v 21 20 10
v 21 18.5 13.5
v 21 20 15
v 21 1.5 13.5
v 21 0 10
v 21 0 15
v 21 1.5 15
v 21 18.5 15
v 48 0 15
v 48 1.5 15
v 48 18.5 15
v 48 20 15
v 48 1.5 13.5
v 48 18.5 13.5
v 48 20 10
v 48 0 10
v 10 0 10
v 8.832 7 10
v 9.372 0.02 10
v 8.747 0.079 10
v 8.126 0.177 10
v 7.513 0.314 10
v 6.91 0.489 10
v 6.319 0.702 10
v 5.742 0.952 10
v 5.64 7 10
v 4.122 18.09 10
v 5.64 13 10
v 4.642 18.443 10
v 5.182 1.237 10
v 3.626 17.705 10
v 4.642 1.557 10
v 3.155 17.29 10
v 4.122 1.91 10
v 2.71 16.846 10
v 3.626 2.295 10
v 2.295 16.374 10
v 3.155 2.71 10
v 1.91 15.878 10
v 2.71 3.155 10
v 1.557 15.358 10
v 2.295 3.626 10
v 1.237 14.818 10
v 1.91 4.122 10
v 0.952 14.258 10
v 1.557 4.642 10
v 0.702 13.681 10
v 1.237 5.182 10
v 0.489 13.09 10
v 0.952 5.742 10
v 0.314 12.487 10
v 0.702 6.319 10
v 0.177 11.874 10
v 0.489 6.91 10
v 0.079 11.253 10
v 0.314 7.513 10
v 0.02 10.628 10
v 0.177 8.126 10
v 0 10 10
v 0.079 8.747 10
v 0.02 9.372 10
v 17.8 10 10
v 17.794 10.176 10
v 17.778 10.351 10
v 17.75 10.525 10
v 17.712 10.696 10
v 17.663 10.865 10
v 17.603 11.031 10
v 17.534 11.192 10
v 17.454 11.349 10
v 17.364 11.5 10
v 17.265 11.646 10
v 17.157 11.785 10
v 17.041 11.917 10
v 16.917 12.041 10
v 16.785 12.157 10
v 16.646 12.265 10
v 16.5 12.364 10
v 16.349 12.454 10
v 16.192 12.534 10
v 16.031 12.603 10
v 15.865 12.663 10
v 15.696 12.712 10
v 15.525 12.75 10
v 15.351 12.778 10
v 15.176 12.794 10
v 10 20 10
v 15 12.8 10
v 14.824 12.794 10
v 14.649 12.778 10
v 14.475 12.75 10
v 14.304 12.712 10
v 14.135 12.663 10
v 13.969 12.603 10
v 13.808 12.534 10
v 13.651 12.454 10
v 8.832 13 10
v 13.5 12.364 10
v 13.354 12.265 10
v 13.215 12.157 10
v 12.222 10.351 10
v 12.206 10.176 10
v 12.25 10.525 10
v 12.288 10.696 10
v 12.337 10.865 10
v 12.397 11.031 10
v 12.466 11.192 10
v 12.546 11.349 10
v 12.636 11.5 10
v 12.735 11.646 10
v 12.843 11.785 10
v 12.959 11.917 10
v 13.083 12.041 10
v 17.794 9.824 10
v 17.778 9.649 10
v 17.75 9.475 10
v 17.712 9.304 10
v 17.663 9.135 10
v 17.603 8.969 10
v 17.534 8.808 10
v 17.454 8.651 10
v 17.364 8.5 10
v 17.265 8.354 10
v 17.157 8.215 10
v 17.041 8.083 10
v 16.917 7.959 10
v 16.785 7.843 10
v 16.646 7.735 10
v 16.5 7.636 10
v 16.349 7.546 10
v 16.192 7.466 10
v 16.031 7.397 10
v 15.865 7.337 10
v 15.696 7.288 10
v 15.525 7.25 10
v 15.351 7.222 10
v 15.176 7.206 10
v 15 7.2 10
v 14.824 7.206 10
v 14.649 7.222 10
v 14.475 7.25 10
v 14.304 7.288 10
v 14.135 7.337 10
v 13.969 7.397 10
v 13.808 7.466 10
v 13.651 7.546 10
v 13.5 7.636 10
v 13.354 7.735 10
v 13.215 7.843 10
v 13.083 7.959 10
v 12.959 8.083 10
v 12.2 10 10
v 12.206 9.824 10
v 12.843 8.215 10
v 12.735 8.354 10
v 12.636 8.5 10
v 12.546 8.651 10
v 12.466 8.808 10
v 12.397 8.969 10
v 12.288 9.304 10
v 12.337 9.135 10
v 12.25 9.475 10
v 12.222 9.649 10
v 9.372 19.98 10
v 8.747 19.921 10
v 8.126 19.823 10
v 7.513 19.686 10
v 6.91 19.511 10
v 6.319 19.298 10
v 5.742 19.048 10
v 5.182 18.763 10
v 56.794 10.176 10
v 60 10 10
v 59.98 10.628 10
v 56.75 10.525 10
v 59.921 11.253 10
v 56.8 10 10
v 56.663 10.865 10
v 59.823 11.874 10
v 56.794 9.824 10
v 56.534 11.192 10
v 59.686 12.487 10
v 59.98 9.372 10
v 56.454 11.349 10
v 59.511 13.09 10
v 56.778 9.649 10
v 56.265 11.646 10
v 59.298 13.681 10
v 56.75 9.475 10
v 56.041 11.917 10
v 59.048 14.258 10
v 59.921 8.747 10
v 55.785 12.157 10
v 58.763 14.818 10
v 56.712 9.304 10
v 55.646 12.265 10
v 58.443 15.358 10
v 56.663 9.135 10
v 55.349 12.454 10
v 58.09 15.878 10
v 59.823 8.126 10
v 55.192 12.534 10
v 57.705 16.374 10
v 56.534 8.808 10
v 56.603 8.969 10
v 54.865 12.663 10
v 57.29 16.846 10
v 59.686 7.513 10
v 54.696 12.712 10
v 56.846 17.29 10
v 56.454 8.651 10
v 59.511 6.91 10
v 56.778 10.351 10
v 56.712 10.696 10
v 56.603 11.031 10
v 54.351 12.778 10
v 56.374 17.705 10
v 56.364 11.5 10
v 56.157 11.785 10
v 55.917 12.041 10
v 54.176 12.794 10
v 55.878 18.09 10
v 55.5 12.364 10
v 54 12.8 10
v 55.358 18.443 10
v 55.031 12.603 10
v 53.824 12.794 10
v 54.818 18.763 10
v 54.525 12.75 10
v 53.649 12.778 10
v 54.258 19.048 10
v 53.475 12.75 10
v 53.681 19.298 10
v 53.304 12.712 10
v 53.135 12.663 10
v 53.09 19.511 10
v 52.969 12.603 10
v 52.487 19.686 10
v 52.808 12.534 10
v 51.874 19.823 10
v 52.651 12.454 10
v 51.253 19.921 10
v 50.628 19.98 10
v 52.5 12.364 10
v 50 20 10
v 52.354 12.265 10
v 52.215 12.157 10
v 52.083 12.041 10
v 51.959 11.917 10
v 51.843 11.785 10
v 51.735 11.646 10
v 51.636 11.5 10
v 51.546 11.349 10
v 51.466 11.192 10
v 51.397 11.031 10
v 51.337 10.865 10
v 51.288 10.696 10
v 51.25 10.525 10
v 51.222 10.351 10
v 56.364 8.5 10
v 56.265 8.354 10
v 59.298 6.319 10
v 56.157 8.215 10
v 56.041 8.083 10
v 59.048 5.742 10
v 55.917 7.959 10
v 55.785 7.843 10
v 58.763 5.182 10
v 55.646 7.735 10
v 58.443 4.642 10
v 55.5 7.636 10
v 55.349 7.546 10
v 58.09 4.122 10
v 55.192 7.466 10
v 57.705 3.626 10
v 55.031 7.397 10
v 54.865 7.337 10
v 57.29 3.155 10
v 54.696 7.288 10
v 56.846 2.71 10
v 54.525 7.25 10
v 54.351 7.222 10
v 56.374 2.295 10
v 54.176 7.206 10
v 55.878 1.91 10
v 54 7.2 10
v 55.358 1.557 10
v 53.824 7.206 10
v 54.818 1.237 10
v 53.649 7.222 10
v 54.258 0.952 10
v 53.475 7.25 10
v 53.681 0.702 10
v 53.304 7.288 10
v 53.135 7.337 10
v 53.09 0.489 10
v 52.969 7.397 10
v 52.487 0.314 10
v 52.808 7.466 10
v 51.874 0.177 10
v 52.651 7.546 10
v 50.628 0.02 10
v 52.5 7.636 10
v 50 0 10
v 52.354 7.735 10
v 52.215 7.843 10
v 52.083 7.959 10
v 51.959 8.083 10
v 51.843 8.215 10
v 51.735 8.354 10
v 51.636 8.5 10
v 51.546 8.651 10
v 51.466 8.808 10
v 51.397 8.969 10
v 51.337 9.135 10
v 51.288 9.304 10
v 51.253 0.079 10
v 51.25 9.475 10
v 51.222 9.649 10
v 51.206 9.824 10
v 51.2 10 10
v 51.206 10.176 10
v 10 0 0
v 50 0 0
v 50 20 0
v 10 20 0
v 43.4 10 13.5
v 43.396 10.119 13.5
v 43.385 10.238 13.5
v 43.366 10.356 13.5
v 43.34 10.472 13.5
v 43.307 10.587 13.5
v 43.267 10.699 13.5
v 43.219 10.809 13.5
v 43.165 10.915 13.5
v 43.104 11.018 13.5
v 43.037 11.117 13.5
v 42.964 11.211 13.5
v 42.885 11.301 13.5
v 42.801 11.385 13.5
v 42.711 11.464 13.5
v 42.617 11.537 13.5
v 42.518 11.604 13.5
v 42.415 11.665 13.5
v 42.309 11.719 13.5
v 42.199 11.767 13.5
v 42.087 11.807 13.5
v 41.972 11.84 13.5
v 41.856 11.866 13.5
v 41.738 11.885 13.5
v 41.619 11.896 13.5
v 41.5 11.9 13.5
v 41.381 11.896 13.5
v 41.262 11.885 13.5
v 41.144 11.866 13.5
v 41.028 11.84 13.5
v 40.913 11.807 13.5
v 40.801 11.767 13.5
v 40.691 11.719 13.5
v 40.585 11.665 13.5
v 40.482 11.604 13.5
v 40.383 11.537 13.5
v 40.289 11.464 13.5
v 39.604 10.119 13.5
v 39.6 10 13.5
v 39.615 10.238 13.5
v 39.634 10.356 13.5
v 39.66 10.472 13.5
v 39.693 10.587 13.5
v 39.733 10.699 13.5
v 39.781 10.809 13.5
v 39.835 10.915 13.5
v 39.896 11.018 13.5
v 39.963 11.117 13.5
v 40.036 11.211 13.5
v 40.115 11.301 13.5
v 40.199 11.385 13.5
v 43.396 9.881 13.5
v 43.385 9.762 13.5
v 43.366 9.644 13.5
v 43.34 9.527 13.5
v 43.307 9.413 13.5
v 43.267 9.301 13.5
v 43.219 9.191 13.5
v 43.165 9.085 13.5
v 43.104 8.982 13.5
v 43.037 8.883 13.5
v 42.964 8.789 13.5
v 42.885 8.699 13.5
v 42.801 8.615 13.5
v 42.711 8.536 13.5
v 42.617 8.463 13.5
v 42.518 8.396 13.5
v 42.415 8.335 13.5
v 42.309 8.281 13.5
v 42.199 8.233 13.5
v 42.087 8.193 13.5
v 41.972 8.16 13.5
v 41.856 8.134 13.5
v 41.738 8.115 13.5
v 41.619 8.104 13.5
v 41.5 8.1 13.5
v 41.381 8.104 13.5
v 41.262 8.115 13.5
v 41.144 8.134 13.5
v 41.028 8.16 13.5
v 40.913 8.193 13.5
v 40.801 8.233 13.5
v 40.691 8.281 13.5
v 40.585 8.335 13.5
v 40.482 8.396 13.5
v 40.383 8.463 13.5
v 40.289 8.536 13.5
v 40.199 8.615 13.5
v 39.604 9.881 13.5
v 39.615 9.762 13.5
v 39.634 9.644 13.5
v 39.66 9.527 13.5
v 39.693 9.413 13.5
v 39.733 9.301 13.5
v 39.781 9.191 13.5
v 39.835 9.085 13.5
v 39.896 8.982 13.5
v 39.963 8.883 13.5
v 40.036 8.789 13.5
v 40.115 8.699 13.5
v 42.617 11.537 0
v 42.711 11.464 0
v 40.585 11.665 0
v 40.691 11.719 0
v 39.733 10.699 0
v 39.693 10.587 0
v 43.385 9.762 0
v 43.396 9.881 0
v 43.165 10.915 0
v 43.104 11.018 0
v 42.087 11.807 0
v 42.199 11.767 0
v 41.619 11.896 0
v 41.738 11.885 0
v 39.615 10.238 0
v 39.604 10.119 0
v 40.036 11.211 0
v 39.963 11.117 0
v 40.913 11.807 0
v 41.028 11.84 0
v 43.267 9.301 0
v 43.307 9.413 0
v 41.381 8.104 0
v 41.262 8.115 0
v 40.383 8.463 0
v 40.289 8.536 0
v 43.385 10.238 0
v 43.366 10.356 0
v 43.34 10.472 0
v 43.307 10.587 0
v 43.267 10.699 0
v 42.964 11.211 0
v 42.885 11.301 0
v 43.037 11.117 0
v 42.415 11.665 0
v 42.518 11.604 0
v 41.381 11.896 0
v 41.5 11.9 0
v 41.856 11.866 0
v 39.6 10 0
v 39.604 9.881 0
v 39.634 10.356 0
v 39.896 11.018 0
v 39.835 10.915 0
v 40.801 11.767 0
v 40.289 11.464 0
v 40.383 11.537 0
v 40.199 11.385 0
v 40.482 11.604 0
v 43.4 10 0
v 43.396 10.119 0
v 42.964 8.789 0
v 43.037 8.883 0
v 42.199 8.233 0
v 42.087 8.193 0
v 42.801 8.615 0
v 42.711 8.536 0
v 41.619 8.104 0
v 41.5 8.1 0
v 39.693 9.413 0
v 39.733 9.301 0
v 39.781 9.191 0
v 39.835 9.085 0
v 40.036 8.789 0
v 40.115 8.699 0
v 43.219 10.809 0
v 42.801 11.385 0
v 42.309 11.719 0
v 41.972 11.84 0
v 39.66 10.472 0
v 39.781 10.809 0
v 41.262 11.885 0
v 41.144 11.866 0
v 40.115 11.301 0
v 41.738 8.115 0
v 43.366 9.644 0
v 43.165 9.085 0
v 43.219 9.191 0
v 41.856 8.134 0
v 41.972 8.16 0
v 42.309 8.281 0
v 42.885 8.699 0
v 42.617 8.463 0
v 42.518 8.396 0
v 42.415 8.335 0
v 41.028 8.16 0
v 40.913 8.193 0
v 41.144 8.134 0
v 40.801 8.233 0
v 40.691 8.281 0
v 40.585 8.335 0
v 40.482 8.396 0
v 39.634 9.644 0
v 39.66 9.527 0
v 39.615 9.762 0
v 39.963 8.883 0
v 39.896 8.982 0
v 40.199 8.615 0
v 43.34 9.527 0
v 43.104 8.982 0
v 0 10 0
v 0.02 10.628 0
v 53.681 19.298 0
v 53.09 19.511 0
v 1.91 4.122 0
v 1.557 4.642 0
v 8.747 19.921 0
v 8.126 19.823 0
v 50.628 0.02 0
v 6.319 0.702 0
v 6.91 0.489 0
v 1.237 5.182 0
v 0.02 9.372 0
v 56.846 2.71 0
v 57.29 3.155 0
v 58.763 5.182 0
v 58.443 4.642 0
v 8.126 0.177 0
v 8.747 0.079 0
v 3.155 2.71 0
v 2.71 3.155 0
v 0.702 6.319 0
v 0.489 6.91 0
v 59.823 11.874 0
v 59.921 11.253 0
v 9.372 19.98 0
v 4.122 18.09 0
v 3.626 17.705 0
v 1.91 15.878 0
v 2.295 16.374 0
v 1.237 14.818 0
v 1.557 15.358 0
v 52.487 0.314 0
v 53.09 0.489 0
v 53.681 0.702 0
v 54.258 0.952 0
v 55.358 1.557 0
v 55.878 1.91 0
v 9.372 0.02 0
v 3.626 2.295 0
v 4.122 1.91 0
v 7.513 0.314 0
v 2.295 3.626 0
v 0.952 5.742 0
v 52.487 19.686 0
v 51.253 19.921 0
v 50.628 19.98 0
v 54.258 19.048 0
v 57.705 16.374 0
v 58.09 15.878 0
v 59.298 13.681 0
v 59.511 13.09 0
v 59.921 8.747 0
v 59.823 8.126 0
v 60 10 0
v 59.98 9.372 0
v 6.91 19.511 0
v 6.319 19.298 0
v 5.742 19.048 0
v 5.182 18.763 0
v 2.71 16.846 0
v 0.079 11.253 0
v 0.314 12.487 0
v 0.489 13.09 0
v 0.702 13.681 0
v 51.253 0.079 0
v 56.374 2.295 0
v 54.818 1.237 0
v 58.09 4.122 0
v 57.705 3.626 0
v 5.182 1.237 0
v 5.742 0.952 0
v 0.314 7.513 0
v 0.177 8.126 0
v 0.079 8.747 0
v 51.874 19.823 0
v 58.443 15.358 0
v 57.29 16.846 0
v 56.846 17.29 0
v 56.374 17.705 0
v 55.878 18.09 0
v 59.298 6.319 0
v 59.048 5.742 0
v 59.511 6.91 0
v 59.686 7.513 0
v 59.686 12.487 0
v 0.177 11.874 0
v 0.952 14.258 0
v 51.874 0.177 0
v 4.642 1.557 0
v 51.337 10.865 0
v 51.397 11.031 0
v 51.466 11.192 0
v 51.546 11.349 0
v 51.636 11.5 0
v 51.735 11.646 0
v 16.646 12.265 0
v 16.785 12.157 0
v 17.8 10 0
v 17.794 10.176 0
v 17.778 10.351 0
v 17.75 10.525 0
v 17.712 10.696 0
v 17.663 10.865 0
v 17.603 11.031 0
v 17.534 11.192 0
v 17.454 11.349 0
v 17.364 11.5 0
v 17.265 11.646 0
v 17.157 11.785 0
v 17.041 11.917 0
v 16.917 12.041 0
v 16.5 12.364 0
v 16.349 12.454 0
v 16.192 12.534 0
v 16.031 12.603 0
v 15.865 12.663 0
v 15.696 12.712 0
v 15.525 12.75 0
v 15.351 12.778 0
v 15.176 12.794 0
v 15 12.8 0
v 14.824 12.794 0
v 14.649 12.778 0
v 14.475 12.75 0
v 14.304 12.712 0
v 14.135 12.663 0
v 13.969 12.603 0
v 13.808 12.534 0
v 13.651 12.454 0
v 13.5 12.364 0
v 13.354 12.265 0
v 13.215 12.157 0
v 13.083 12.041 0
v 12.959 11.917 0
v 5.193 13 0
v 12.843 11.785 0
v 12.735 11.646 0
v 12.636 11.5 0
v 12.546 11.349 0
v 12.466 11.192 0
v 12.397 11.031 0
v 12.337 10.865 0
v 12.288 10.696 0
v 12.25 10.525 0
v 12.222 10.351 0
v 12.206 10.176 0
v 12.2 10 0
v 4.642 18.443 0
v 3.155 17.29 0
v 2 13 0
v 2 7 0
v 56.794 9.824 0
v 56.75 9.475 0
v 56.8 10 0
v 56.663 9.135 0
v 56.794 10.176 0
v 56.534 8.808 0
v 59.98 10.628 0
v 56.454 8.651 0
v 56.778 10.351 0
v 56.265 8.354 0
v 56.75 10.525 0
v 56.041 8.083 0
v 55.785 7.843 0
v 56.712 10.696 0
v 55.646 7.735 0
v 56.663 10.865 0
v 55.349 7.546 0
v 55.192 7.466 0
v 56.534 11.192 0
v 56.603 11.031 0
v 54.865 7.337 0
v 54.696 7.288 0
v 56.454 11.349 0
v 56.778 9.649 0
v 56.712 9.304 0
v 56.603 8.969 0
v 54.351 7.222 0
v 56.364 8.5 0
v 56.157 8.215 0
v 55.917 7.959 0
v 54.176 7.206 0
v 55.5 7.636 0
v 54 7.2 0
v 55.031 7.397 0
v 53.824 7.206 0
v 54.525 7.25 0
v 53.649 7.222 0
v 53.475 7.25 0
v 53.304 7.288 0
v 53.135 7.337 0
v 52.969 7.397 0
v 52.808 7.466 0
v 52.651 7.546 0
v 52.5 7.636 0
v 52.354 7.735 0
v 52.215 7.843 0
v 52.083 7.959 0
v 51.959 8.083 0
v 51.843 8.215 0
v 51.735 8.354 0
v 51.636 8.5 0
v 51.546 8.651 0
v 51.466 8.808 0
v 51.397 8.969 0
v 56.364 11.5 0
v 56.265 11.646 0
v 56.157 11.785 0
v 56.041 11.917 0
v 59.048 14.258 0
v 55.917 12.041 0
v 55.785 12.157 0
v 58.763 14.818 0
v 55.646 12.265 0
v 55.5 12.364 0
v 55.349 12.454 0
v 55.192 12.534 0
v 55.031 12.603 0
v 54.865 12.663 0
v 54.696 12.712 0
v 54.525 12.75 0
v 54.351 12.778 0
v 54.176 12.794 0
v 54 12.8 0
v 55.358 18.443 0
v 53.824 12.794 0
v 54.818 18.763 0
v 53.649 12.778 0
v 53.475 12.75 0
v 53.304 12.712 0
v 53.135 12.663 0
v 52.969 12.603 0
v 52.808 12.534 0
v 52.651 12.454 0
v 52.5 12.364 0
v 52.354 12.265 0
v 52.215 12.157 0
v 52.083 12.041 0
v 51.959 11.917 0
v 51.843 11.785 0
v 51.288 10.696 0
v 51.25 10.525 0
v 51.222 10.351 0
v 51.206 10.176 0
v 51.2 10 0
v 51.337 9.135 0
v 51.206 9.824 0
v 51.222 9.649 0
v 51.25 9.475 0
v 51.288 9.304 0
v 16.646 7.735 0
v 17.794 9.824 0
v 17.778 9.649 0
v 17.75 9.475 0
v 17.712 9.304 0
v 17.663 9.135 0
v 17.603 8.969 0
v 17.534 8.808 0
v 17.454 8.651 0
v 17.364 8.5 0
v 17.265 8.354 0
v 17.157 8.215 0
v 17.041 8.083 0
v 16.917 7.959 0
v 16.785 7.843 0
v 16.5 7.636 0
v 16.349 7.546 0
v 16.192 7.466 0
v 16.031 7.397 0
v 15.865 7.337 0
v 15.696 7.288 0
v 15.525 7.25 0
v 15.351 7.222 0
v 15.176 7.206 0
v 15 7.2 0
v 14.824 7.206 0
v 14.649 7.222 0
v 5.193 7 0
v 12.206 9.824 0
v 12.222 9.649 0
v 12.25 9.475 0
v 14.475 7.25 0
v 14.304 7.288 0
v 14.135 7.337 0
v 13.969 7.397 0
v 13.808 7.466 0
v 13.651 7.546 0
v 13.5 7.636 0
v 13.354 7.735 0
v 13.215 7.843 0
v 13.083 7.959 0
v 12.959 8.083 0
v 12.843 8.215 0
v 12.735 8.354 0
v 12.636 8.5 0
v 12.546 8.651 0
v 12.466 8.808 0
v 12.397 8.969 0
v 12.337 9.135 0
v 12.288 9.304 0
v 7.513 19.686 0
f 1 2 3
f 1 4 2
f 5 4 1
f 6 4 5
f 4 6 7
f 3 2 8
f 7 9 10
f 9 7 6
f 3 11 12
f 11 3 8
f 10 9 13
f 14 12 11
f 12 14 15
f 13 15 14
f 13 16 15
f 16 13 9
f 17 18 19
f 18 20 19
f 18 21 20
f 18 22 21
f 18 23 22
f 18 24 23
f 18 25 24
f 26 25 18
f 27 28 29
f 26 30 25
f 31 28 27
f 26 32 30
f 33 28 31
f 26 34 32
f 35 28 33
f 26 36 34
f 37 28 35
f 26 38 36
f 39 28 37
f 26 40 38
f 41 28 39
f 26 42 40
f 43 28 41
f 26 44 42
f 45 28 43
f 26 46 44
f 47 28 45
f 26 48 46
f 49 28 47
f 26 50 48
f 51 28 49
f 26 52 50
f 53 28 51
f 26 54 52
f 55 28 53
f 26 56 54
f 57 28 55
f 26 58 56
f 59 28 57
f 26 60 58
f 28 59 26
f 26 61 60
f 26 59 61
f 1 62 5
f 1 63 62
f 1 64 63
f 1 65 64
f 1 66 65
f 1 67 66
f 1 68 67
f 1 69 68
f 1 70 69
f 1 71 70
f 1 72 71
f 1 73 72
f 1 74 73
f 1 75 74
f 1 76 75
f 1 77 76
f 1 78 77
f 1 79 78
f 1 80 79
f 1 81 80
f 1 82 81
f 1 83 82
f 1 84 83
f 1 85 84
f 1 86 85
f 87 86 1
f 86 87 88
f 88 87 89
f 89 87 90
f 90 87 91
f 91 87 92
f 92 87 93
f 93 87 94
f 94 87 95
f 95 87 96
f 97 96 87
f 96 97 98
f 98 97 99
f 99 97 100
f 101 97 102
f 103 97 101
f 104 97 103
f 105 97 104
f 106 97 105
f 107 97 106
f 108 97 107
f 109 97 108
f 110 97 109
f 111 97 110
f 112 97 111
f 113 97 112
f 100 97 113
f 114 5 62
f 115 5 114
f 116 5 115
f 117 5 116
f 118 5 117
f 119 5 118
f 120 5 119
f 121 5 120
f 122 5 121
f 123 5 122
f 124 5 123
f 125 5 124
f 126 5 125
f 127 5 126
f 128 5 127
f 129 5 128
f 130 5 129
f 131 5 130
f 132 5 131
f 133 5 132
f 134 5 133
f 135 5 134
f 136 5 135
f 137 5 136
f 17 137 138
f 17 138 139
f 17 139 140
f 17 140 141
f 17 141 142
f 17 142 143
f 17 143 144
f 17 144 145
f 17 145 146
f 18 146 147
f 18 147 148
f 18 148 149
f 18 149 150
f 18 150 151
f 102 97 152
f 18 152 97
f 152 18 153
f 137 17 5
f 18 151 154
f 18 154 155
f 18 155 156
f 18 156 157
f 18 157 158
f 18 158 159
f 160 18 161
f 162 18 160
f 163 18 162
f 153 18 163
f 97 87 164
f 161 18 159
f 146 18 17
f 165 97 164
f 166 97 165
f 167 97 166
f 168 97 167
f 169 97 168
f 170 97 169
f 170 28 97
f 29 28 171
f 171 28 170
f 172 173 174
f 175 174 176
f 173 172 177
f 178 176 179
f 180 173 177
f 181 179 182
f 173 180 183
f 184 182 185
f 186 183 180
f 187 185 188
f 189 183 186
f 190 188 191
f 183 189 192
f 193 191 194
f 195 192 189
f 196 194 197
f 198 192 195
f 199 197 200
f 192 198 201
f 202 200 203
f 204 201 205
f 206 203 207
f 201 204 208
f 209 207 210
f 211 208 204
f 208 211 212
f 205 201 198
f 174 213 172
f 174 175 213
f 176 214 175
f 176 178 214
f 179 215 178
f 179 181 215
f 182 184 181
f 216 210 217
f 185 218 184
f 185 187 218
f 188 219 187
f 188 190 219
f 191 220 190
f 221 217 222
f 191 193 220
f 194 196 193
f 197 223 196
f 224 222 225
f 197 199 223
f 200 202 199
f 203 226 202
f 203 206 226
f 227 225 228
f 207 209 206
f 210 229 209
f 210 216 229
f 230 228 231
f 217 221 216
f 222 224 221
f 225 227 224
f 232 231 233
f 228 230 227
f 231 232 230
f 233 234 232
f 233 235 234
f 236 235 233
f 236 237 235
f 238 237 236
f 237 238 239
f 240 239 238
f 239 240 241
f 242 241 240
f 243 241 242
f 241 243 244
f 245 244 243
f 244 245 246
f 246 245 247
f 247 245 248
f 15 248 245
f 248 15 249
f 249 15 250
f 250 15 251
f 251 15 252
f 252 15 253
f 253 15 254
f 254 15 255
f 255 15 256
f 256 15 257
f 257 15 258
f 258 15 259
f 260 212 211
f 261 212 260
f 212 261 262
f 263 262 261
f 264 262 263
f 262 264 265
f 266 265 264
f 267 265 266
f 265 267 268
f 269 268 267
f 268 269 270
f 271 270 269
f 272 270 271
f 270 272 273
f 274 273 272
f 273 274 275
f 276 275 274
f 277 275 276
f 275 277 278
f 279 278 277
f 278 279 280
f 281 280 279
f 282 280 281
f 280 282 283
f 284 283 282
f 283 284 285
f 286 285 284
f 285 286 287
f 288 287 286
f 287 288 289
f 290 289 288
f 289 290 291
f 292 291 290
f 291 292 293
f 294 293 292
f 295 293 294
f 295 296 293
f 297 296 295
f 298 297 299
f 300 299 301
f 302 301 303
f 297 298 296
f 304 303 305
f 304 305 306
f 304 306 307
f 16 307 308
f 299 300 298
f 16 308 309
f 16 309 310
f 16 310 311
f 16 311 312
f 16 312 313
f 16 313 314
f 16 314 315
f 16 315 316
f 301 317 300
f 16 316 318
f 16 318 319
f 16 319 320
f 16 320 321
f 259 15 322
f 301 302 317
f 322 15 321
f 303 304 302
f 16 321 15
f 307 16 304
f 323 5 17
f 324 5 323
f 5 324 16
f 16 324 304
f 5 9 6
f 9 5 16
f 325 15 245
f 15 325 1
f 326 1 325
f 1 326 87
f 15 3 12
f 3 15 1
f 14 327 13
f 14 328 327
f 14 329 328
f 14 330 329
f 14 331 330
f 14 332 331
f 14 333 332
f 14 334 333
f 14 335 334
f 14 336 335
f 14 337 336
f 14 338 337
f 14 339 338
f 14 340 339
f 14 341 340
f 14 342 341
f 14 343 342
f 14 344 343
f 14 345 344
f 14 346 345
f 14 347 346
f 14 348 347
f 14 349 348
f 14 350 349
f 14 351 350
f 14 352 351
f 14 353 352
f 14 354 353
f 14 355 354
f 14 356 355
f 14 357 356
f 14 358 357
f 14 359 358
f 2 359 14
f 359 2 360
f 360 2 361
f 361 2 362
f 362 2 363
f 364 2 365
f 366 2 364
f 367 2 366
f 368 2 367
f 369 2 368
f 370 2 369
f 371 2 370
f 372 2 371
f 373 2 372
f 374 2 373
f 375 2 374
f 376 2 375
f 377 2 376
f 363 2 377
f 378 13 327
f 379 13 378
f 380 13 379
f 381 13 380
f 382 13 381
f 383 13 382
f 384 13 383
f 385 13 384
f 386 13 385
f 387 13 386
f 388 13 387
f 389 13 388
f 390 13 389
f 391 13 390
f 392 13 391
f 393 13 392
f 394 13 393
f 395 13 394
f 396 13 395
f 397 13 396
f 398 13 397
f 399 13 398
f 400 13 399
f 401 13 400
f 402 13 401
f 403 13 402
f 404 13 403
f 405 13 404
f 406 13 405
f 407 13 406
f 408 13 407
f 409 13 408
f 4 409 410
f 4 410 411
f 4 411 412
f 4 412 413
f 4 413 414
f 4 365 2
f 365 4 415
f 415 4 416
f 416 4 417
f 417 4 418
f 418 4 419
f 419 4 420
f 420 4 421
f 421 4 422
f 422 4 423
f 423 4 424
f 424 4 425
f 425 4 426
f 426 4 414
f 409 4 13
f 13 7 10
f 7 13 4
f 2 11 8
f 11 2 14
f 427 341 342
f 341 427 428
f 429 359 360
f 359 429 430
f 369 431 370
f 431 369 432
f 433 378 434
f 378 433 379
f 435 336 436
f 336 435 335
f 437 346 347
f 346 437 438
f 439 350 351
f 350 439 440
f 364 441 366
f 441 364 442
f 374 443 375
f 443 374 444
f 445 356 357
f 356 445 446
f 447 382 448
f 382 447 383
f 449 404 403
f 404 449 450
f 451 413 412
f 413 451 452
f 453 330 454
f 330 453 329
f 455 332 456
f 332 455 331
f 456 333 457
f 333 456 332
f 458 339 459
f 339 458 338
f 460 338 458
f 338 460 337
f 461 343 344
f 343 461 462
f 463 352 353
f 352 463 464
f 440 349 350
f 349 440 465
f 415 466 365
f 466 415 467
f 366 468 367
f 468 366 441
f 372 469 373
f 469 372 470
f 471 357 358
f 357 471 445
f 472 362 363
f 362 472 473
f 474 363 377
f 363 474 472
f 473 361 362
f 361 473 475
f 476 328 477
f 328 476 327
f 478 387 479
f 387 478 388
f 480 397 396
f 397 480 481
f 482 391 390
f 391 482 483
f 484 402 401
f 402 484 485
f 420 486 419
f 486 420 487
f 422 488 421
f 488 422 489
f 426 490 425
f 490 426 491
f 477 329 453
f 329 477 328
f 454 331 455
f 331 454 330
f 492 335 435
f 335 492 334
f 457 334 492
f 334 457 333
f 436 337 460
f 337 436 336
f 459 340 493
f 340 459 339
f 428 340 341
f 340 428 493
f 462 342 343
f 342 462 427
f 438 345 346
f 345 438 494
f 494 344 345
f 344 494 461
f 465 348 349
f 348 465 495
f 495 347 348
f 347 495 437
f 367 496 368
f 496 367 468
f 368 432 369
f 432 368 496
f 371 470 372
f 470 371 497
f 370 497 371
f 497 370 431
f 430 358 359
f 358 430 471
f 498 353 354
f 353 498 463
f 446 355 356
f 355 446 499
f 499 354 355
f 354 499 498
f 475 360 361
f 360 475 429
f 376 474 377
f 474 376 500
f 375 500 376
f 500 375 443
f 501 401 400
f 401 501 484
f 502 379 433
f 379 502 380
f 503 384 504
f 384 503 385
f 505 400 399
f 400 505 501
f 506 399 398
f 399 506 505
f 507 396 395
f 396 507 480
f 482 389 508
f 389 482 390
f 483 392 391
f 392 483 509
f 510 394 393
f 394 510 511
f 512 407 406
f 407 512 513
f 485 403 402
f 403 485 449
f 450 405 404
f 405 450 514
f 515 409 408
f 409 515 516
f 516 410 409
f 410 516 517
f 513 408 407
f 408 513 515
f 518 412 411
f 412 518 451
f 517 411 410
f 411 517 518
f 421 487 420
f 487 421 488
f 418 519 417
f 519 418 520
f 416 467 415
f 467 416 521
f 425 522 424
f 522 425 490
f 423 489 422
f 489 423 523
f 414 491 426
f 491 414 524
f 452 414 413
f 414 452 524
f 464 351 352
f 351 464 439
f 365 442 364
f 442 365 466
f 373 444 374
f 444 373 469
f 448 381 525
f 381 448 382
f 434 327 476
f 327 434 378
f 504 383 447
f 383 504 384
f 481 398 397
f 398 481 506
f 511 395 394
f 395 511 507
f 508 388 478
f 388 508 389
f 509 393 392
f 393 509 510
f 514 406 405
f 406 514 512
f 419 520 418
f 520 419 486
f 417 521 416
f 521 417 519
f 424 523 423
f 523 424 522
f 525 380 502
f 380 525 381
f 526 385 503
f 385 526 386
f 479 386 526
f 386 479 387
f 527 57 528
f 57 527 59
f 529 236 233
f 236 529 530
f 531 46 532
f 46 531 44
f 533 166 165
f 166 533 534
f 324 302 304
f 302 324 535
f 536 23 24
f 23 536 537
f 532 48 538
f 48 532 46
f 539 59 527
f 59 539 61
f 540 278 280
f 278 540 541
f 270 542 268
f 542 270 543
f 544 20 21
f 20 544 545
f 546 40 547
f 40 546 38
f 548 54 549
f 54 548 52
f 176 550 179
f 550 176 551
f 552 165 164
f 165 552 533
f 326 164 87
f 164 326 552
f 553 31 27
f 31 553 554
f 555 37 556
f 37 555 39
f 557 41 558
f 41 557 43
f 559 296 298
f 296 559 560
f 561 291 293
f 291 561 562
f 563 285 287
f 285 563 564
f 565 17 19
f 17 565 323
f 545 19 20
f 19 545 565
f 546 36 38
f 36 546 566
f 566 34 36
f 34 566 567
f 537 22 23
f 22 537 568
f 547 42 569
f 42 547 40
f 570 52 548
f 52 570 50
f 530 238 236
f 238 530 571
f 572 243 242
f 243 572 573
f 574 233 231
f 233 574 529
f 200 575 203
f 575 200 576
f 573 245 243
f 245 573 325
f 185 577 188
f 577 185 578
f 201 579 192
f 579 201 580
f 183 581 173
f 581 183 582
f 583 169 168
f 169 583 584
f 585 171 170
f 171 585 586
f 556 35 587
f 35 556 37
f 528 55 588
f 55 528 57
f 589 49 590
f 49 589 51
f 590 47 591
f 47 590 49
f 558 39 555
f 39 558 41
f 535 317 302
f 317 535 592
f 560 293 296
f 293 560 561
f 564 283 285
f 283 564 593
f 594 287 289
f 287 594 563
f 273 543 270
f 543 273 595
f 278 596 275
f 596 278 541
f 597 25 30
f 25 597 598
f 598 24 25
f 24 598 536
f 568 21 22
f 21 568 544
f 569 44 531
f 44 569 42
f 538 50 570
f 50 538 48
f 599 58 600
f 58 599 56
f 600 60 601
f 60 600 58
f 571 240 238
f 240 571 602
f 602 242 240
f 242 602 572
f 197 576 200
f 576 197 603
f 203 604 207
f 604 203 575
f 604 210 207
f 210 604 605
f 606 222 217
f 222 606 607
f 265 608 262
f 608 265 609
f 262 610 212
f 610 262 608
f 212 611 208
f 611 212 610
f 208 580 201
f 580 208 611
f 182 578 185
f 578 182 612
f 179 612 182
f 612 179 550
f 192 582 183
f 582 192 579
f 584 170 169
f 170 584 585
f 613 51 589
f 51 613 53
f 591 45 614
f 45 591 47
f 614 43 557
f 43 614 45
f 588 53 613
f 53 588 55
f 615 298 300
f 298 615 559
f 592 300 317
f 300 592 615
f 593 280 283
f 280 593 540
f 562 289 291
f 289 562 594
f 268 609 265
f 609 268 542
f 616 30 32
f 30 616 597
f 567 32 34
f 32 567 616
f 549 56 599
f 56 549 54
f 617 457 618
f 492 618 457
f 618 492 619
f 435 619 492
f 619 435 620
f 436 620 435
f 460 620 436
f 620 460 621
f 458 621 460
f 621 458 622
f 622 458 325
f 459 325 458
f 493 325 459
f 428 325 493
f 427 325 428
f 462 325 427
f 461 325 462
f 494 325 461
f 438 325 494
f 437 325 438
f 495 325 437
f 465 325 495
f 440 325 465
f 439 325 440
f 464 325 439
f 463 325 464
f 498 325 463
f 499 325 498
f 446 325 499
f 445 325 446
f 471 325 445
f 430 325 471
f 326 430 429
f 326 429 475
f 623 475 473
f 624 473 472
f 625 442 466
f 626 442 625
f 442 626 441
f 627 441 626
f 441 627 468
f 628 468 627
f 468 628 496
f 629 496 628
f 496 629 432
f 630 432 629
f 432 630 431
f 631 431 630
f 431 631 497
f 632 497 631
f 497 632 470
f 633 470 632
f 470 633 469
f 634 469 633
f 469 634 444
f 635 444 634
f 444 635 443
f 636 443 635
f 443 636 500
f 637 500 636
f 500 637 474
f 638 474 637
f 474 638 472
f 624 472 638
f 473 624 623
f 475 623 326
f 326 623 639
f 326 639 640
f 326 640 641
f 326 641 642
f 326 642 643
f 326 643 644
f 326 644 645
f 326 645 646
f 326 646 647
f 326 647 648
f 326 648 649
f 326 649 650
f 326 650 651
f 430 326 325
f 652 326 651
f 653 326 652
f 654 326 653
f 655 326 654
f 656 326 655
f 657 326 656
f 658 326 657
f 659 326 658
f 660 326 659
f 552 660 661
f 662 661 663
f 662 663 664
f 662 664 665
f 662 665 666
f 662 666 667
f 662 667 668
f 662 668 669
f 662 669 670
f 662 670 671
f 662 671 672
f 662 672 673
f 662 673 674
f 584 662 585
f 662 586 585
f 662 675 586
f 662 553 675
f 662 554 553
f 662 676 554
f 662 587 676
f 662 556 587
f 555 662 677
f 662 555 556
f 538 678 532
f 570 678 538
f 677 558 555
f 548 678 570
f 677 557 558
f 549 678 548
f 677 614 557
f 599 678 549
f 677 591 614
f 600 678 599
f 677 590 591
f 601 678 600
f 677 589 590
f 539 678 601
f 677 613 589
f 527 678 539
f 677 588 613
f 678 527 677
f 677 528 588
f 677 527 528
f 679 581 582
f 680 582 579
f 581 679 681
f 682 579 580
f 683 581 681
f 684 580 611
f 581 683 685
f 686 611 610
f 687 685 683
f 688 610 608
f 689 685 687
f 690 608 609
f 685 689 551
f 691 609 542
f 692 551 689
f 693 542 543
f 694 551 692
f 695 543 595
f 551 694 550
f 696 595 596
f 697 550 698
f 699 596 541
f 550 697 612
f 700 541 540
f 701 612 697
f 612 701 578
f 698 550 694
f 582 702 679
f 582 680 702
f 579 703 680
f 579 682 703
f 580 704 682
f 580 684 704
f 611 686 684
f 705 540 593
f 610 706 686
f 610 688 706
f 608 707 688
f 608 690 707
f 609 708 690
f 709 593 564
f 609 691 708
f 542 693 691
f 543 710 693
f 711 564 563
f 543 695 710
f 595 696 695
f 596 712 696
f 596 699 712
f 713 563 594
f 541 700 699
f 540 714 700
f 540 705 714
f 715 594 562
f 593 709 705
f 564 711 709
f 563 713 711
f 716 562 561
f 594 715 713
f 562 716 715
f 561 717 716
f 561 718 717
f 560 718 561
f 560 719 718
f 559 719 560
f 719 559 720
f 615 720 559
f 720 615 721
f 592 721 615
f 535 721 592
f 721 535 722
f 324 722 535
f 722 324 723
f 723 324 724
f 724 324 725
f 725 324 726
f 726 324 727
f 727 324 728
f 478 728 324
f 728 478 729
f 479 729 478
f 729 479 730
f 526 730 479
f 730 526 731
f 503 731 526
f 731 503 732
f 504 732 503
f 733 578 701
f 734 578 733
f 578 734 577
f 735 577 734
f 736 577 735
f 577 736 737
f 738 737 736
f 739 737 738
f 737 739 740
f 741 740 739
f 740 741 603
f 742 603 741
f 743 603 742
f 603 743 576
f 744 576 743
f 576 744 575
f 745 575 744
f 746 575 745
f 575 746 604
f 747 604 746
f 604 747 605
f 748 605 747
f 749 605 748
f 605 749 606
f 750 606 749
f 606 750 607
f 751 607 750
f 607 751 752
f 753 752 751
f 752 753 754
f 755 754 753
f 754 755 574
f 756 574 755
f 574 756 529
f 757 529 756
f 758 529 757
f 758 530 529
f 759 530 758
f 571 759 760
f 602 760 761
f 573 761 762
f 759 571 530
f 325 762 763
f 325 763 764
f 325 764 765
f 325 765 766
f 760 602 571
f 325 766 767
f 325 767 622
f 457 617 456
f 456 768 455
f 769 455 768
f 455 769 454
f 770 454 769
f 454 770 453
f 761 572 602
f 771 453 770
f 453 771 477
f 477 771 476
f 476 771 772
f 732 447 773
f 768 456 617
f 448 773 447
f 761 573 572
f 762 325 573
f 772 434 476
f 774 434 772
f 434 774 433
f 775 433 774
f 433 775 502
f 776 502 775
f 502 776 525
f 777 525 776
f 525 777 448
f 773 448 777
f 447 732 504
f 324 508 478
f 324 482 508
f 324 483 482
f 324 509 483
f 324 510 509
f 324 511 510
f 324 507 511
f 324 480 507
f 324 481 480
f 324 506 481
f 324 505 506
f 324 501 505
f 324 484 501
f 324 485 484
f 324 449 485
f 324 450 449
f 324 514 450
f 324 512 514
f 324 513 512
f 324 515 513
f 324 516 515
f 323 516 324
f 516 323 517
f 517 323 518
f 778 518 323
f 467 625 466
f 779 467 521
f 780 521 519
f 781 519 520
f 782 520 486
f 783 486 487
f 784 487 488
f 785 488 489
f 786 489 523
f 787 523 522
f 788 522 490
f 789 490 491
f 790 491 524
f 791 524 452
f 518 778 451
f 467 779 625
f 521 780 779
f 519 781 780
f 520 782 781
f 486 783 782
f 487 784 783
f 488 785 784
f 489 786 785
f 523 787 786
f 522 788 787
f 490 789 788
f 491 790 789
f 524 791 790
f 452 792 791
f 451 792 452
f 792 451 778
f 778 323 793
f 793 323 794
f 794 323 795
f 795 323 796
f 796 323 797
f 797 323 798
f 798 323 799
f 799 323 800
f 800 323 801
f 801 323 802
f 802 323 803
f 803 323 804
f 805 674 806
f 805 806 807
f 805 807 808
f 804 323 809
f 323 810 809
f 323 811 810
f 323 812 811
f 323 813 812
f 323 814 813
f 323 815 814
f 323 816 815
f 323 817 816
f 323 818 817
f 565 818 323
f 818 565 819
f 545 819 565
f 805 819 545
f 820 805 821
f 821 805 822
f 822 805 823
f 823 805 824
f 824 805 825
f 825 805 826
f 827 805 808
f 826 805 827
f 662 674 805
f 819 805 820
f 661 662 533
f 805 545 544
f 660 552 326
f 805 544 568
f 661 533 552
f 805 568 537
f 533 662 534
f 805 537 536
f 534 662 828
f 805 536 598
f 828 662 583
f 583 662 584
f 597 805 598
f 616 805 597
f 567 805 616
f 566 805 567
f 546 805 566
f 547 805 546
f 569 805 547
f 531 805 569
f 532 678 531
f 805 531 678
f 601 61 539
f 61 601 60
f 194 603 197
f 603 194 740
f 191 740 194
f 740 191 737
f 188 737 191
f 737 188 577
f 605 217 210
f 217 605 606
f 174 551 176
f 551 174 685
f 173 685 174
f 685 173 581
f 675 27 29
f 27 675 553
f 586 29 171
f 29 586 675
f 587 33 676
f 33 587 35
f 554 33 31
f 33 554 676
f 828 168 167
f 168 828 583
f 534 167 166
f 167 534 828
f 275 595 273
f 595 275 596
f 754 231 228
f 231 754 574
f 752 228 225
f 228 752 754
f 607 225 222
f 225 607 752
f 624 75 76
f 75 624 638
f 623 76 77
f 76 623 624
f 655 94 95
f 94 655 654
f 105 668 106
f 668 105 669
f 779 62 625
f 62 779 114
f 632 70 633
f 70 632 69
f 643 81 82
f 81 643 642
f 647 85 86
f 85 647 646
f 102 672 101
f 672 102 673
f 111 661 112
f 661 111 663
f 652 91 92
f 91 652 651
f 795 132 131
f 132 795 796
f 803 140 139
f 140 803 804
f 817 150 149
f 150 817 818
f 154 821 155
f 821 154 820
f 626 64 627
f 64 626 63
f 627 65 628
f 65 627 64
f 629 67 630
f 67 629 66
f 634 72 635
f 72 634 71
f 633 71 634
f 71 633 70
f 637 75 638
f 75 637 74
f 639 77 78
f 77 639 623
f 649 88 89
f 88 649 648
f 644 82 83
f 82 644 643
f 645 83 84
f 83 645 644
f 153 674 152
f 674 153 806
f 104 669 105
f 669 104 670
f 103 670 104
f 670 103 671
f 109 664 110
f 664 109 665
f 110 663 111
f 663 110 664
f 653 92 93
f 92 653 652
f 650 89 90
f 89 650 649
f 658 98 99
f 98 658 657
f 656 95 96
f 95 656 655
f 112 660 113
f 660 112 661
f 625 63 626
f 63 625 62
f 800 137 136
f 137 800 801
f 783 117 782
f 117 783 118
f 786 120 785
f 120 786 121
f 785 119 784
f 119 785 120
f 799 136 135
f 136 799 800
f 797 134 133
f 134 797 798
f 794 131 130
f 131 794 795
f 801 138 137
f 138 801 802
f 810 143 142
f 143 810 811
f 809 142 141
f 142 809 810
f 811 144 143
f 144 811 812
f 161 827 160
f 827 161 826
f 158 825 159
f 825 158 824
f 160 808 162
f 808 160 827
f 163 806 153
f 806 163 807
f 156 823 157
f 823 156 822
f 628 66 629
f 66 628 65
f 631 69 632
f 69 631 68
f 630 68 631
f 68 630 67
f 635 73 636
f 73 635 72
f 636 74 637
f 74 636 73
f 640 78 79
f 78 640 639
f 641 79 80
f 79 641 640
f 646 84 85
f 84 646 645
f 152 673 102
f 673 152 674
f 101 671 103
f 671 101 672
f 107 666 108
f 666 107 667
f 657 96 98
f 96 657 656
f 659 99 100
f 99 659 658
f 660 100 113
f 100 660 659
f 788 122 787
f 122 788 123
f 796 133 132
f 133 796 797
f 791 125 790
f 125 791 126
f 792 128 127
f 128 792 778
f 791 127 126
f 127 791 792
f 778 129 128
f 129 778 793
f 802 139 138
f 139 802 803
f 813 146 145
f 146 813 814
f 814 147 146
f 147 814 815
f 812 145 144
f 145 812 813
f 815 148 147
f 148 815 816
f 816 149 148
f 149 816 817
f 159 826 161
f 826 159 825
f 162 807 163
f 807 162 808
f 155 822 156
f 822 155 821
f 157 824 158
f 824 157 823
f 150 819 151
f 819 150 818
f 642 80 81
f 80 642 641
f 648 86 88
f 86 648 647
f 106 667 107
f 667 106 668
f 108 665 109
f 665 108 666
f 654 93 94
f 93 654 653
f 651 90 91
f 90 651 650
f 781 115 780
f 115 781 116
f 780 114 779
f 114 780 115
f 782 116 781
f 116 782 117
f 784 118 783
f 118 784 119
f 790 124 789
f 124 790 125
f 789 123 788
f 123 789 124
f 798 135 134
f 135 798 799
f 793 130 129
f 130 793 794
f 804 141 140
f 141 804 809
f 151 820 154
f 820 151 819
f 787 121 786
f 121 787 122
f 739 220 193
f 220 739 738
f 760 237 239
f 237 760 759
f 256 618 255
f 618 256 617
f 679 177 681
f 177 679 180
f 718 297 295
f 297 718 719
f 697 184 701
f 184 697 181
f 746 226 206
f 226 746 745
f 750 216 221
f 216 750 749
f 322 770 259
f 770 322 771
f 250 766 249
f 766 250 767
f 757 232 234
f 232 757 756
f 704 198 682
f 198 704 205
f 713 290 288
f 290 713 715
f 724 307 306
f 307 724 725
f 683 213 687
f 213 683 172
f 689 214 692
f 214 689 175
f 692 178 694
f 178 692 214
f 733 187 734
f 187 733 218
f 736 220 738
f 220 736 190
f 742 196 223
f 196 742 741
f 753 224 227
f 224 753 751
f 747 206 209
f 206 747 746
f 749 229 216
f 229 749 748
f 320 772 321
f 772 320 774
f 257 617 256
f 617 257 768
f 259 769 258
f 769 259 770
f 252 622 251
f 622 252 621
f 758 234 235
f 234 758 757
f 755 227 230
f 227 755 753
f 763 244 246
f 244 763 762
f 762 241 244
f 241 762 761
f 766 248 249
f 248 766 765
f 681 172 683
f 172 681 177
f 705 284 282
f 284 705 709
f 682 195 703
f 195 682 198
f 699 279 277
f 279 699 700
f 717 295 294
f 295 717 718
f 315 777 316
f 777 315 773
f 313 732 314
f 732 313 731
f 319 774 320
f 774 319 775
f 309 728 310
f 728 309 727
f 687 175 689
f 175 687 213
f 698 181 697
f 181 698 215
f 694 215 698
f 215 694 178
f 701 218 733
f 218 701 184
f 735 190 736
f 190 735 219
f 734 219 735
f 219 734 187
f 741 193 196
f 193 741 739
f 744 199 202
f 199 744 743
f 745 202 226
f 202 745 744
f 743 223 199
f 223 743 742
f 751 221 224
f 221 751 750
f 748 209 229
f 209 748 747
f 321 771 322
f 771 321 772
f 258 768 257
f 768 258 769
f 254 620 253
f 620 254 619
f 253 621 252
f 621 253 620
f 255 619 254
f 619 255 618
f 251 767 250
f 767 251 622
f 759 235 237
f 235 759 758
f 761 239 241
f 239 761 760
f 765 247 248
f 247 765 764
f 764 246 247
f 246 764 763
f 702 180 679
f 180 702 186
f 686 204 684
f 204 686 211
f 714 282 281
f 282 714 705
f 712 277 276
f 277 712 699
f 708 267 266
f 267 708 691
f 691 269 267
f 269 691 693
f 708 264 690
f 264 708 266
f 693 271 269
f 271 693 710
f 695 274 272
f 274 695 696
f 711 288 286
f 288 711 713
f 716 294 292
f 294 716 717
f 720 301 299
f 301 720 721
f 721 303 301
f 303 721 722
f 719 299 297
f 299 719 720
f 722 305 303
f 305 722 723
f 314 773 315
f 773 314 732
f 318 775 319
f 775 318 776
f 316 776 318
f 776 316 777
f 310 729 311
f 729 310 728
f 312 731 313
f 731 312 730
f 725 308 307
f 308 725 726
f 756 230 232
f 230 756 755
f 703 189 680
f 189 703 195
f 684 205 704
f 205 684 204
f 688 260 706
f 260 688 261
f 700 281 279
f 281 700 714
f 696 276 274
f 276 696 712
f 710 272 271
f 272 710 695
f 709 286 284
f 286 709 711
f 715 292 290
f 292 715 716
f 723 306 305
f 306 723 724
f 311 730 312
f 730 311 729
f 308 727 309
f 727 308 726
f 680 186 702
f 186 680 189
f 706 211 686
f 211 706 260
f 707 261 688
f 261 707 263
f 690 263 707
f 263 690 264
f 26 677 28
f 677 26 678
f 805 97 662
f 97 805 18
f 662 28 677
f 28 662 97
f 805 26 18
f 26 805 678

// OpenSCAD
// file: part-lib.scad
module BeltRecess(){
    hull(){
        translate([107, 0, 0]) cylinder(d = 52, h= 50);
        translate([33, 0, 0]) cylinder(d = 34, h= 50);
    }
}



module ScrewSlot(diameter, width, length){
    hull(){
        cylinder(d = diameter, h = length);
        translate([0, width]) cylinder(d = diameter, h = length);
    }
}

module FixedLeadScrewBushing(){  
    rotate([0, -90, 0]) translate([0, 0, 0]) union(){
        translate([0, 0, -10]) intersection(){
            cylinder(d = 54, h= 20, center = true);
            cube([46, 46, 20], center = true);
        }
        
        translate([0, 0, 0]) cylinder(d = 36, h = 18);
        translate([0, 0, 18]) cylinder(d = 18, h = 100);
        
        for(i = [45:90:315]){
            screwRadius = 22;
            translate([screwRadius * sin(i), screwRadius * cos(i), 0]) cylinder(d = 5.2, h = 116);
        }
    }
}

module SupportLeadScrewBushing(){  
    rotate([-90, 0, 90]) translate([-21, -27, -20]) union(){
        intersection(){
            translate([21, 27, 0]) cylinder(d = 54, h= 20);
            cube([42, 60, 20]);
        }
        
        translate([21, 27, 20]) cylinder(d = 36, h = 7);
        translate([21, 27, 7]) cylinder(d = 16, h = 100);
        
        translate([6, 12, 7]) cylinder(d = 5.2, h = 116);
        translate([36, 42, 7]) cylinder(d = 5.2, h = 116);
        translate([6, 42, 7]) cylinder(d = 5.2, h = 116);
        translate([36, 12, 7]) cylinder(d = 5.2, h = 116);
    }
}

module NEMA24MotorMount(slidePlay){
    union(){
        cube([102, 62 + slidePlay, 62]);
        
        translate([102, 7.5, 7.5]) rotate([0, 90, 0]) {
            ScrewSlot(5, slidePlay, 100);
        }
        
        translate([102, (62 + slidePlay) - 7.5, 7.5]) rotate([0, 270, 180]) {
            ScrewSlot(5, slidePlay, 100);
        }
        
        translate([102, (62 + slidePlay) - 7.5, 62 - 7.5]) rotate([0, 270, 180]) {
            ScrewSlot(5, slidePlay, 100);
        }
        
        translate([102, 7.5, 62 - 7.5]) rotate([0, 90, 0]) {
            ScrewSlot(5, slidePlay, 100);
        }
        
        translate([102, 31, 31]) rotate([0, 90, 0]) {
            ScrewSlot(40, slidePlay, 100);
        }
    }
}

module TSlotGuide(length, guideCount){
    translate([0, 0, 0.5]){
        for (index = [0: guideCount - 1]) {
            translate([(length / 2), 10 + (index * 20), 0]) cube([length, 4.8, 1], center = true);
        }
    }
}

module LimitSensorMount(){
    translate([0, 0, 0]) difference(){
        union(){
            cube([32, 20, 5]);
        }
        
        translate([2.5, 1.5, 3.5]) cube([27, 17, 2]);
        
        translate([25.5, 10, -50]) cylinder(d = 3.8, h = 100);
    }
}

module CompactLimitSensorMount(){
    translate([0, 0, 0]) difference(){
        union(){
            cube([27, 20, 5]);
        }
        
        translate([0, 1.5, 3.5]) cube([27, 17, 2]);
        
        translate([20.5, 10, -50]) cylinder(d = 3.8, h = 100);
    }
}

module MagnetHolder(){
    translate([0, 0, 0]) difference(){
        union(){
            cube([18, 18, 6]);
        }
        
        translate([2.5, 2.5, 1.35]) cube([19, 13, 3.3]);
    }
}
// main file
$fn = 100;
include <part-lib.scad>


module XLimitSensor(){
    difference(){
        union(){
            hull(){
                translate([10, 10, 0]) cylinder(d = 20, h = 10);
                translate([50, 10, 0]) cylinder(d = 20, h = 10);
            }
            translate([21, 0, 10]) rotate([0, 0, 0]) CompactLimitSensorMount();
        }
        
        translate([15, 10, -10]) cylinder(d = 5.6, h = 30);
        translate([54, 10, -10]) cylinder(d = 5.6, h = 30);
        
        translate([41.5, 10, -10]) cylinder(d = 3.8, h = 30);
        
        translate([2, 7, 0]) rotate([0, 20, 0]) cube([3, 6, 100]);
    }
}

XLimitSensor();
